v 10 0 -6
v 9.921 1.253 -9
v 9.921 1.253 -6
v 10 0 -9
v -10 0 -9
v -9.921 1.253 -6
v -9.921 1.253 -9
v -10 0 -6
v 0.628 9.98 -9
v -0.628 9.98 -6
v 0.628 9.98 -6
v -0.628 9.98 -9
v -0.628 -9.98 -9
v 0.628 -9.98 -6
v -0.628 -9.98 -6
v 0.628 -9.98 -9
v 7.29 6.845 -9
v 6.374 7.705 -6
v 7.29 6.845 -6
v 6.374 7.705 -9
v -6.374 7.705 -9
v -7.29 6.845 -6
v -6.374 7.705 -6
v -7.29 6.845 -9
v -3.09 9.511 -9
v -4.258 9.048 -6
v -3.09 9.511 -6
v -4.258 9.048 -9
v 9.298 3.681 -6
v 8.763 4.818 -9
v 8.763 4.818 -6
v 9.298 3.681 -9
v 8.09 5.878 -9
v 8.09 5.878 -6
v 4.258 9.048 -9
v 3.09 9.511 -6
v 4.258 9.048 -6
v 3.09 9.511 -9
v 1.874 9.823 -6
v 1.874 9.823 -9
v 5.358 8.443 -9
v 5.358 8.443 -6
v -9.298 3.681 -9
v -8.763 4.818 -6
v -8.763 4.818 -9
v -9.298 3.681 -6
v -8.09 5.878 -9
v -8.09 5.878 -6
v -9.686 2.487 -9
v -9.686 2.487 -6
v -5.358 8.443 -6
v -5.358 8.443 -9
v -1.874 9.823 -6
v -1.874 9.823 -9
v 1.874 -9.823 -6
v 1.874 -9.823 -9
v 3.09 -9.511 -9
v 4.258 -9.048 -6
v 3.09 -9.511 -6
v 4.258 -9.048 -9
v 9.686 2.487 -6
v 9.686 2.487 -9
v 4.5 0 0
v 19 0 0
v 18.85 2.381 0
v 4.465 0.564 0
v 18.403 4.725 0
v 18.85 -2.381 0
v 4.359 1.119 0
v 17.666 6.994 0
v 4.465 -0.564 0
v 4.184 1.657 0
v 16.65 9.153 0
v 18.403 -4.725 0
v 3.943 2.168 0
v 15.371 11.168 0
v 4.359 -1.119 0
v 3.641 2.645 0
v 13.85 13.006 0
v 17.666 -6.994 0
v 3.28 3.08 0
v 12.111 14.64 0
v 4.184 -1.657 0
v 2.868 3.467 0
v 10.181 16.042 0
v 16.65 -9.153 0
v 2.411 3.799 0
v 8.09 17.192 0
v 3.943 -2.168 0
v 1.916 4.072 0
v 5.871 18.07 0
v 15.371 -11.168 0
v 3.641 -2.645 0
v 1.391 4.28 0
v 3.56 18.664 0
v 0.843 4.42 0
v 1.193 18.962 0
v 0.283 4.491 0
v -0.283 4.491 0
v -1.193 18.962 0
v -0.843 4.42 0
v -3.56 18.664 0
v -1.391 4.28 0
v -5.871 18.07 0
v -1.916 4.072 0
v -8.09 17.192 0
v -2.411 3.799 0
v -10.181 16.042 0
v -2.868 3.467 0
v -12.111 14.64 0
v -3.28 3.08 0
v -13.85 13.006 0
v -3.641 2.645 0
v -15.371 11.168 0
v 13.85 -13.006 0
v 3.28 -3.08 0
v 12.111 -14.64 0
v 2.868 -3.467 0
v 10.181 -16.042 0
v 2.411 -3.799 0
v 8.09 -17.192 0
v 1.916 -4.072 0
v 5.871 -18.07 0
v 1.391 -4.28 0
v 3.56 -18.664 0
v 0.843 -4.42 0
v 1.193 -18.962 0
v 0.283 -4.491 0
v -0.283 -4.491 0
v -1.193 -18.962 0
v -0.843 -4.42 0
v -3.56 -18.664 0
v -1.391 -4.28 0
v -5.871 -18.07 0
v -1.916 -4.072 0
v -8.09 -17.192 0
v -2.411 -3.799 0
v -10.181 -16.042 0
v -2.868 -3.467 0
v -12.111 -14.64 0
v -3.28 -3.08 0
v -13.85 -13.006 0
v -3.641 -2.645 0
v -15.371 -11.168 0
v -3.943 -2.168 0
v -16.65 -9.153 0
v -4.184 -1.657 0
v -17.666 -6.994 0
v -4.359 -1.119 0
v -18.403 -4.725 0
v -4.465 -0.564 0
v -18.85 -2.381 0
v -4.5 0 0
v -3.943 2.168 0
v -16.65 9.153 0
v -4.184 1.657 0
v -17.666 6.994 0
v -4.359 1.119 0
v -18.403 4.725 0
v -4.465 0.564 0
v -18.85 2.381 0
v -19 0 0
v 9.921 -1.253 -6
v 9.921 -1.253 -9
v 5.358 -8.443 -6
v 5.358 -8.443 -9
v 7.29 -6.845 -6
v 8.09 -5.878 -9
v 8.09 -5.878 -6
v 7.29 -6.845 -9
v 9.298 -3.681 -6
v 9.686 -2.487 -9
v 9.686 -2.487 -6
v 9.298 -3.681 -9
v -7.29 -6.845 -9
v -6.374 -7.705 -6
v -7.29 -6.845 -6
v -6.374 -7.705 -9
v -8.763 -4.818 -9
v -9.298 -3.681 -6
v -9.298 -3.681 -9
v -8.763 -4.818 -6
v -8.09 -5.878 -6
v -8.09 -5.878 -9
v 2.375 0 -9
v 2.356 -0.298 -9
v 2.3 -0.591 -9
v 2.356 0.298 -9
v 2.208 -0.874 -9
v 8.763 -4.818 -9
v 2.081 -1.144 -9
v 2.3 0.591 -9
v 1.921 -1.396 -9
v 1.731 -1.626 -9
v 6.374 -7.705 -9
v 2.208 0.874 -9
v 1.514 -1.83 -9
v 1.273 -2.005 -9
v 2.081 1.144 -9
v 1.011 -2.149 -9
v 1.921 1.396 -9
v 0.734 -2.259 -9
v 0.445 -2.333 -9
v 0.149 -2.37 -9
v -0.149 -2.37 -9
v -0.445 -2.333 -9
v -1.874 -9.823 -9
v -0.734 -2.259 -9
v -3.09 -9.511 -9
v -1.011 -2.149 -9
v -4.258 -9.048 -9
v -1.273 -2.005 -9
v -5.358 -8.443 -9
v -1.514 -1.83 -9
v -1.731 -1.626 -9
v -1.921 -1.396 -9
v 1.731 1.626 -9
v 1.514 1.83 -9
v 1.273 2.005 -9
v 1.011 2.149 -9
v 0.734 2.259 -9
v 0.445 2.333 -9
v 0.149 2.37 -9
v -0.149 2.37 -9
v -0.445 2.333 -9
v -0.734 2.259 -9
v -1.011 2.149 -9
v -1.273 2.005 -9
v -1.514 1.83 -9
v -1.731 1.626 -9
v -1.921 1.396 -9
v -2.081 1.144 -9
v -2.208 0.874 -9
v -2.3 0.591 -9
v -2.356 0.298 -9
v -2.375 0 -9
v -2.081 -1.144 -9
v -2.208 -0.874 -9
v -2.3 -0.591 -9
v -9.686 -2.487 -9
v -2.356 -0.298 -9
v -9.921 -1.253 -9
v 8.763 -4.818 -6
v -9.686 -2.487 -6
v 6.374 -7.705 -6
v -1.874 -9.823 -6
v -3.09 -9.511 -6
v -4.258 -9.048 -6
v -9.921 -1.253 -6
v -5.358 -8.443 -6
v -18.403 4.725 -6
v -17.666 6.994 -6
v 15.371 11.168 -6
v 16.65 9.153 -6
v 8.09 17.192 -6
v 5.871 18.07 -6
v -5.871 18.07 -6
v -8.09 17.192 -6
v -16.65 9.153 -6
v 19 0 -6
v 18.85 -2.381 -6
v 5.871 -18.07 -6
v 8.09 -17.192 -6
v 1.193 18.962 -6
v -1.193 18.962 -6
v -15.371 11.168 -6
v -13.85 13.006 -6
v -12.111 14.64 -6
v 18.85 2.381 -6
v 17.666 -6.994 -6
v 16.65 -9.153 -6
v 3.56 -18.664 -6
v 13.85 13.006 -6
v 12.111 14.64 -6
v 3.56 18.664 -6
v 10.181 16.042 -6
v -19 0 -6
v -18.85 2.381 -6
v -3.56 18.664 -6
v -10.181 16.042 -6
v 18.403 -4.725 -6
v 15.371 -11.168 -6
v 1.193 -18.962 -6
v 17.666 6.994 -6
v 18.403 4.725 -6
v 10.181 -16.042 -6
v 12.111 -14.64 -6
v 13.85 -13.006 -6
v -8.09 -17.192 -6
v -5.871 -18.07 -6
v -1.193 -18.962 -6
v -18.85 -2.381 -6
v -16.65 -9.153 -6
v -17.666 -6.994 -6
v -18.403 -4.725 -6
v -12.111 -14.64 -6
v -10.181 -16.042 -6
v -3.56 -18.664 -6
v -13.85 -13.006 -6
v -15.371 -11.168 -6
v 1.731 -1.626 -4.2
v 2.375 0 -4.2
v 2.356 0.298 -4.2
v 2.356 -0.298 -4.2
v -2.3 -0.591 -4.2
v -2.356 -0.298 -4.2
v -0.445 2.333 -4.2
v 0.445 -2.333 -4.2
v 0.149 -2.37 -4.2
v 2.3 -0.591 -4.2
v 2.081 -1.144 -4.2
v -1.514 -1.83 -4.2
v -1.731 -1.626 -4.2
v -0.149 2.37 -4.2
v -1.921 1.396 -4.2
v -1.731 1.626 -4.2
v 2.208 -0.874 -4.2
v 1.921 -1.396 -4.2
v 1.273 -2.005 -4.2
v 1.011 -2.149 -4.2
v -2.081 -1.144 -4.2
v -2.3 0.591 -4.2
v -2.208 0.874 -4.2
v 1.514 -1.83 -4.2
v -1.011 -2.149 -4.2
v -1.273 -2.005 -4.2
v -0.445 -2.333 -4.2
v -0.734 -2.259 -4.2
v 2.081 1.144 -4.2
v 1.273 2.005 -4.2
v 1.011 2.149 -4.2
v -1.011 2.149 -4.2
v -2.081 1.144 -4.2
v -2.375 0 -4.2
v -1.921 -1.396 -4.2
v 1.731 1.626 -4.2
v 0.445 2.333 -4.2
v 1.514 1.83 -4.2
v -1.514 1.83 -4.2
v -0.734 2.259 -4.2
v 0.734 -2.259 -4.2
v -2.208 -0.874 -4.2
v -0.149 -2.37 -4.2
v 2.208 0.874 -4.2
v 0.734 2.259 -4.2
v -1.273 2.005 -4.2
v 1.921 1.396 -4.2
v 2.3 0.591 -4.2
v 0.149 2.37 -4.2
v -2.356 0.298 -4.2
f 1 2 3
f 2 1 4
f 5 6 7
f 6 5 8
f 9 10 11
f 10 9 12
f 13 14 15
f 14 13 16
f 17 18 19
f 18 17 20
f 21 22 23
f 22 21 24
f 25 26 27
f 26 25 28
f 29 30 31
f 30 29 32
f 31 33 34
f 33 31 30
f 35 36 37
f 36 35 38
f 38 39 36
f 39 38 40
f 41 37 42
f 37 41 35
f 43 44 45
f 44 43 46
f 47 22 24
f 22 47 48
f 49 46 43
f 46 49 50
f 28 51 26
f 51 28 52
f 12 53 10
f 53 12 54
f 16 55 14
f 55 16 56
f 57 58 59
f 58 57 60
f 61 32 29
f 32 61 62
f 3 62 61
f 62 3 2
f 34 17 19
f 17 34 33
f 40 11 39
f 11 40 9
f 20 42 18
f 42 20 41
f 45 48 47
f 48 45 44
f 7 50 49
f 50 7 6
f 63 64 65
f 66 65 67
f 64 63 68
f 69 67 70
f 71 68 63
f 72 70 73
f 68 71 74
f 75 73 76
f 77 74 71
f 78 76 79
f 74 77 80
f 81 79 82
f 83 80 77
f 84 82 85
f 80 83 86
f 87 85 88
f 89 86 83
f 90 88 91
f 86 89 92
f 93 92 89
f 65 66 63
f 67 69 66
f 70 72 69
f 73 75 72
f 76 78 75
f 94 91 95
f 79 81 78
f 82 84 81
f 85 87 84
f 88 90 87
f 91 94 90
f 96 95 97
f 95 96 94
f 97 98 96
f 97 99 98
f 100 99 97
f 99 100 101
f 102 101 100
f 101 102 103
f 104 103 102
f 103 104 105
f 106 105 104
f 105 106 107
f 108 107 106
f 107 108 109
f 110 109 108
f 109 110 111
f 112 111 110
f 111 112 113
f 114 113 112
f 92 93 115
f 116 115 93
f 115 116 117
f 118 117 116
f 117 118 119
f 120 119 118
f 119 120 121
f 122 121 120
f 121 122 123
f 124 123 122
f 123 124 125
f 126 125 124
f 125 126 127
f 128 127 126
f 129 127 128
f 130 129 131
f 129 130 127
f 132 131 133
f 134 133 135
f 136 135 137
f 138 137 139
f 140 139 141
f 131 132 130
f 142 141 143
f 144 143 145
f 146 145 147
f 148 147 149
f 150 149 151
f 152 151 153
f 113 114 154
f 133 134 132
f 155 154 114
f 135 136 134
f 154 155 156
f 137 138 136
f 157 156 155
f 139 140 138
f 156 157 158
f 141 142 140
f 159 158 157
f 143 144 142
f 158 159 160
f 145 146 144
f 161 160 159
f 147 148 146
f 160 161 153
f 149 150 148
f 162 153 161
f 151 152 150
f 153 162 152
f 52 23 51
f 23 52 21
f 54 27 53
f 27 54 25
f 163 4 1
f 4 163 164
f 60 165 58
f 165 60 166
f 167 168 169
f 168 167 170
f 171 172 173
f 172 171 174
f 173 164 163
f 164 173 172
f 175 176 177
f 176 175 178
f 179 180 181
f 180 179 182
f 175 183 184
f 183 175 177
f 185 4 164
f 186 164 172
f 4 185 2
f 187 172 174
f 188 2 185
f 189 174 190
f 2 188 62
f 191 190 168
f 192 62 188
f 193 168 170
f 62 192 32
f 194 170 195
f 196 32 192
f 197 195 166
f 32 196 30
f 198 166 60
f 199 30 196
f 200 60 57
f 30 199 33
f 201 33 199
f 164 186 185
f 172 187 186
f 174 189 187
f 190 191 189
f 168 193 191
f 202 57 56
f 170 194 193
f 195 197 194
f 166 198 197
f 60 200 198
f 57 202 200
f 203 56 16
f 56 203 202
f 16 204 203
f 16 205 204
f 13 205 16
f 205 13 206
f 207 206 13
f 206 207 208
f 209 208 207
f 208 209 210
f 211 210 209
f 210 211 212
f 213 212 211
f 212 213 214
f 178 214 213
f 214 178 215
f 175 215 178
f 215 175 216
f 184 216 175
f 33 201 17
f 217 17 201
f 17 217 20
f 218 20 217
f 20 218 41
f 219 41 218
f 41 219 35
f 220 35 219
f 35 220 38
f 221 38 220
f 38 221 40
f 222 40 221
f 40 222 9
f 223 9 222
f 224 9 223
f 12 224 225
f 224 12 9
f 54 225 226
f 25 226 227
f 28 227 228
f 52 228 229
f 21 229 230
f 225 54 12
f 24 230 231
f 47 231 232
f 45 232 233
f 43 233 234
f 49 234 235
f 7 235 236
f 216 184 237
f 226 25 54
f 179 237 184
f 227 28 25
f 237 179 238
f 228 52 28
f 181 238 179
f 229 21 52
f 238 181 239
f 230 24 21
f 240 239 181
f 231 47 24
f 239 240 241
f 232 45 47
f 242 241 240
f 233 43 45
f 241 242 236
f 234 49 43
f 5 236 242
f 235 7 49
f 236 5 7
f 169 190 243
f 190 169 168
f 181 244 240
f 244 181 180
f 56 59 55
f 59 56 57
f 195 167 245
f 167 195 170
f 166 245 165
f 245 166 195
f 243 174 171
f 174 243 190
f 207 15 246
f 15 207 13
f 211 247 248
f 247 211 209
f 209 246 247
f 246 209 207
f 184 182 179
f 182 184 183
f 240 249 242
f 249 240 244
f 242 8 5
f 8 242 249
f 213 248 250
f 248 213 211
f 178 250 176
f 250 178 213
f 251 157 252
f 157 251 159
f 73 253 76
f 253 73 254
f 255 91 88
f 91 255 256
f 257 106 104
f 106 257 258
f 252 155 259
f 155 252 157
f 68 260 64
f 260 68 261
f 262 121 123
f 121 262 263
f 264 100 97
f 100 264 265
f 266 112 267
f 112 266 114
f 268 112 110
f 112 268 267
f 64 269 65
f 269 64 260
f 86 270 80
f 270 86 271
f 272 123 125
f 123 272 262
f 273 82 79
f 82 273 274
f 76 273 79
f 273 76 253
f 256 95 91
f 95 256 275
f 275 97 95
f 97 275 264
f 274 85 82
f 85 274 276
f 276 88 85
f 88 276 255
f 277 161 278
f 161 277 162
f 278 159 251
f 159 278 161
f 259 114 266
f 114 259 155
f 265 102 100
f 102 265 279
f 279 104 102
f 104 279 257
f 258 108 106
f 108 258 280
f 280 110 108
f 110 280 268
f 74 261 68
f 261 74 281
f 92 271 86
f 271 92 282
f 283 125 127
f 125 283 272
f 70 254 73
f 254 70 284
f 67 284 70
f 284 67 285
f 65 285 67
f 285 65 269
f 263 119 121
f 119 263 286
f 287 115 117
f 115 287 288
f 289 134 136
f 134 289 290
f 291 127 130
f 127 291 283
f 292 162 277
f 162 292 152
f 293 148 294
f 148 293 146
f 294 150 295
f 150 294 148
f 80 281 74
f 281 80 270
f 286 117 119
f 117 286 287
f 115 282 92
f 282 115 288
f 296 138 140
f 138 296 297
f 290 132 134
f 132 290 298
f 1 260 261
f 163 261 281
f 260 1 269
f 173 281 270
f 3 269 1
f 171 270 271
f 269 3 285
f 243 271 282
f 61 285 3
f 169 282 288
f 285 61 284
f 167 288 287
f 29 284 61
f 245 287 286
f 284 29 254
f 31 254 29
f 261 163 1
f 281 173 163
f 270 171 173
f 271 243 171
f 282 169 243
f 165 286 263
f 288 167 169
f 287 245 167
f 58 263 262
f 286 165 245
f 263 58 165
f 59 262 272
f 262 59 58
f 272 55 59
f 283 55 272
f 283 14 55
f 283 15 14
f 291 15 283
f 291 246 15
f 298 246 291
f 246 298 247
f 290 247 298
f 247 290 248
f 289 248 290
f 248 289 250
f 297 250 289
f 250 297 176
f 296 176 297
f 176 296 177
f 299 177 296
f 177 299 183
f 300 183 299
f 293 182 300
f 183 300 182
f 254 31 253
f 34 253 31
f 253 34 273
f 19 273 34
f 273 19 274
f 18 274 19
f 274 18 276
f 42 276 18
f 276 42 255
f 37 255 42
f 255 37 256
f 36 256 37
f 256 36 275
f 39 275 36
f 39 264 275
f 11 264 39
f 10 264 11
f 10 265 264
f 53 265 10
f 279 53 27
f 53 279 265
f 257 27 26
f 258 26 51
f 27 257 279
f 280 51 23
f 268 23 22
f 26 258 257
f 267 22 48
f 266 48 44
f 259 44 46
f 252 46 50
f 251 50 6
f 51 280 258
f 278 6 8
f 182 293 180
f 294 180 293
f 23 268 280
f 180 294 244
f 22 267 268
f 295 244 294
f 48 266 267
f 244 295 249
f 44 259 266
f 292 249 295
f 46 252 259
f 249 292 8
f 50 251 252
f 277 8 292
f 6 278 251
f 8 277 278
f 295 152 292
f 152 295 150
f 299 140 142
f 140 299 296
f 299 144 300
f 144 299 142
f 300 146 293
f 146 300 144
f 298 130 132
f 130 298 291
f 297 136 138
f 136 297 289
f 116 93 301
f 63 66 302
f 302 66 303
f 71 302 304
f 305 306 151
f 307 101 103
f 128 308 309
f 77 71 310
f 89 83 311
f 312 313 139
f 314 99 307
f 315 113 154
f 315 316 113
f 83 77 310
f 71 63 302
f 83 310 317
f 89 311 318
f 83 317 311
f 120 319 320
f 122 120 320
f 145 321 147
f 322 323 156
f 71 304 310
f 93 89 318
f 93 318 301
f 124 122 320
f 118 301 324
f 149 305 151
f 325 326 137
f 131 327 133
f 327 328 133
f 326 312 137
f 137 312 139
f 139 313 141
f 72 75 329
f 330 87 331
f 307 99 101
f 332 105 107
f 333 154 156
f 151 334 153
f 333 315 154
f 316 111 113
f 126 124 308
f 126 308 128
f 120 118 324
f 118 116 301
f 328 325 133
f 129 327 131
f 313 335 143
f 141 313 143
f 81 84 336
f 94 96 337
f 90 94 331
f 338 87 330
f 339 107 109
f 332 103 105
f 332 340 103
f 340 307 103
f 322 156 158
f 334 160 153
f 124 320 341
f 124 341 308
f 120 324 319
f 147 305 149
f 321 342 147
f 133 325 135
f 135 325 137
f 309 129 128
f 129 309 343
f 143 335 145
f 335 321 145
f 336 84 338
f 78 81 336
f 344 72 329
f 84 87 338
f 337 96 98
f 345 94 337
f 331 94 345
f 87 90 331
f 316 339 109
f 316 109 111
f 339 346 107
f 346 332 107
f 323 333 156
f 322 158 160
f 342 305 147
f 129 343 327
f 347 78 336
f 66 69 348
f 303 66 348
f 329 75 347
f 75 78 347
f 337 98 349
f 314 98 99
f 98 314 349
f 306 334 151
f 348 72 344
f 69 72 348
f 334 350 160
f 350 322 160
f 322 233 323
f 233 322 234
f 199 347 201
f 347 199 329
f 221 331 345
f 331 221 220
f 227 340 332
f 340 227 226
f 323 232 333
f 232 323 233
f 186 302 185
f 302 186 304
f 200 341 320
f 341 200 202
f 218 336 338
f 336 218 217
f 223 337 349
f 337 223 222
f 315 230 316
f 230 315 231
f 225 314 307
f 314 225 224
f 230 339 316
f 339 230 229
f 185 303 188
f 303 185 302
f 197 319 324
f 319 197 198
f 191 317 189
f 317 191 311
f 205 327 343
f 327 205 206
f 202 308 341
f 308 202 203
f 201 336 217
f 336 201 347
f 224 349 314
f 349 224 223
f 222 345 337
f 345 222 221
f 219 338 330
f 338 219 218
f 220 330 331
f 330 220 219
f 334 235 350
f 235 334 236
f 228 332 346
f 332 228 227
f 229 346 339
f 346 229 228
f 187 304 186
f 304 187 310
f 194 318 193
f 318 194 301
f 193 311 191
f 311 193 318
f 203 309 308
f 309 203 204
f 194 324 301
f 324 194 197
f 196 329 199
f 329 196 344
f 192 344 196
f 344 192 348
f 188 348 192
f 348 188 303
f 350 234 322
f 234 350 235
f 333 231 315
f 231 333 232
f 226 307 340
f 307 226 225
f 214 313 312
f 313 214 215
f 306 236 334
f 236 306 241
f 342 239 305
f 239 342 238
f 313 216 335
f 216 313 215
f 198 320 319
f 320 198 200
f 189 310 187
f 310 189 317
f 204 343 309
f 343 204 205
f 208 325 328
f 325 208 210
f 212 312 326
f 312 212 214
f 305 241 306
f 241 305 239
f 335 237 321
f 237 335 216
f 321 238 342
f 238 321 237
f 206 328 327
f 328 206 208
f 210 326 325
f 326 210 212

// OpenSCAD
$fn = 50;


difference() {
	union() {
		translate(v = [0, 0, -9.0000000000]) {
			cylinder(h = 9, r = 10.0000000000);
		}
		translate(v = [0, 0, -6.0000000000]) {
			cylinder(h = 6, r = 19.0000000000);
		}
	}
	union() {
		translate(v = [0, 0, 0]) {
			rotate(a = [0, 0, 0]) {
				difference() {
					union() {
						#translate(v = [0, 0, -9.0000000000]) {
							cylinder(h = 9, r = 2.2500000000);
						}
						#translate(v = [0, 0, -4.2000000000]) {
							cylinder(h = 4.2000000000, r = 10.0000000000, r1 = 2.3750000000, r2 = 4.5000000000);
						}
						#translate(v = [0, 0, -9.0000000000]) {
							cylinder(h = 9, r = 2.3750000000);
						}
						#translate(v = [0, 0, -9.0000000000]) {
							cylinder(h = 9, r = 2.2500000000);
						}
					}
					union();
				}
			}
		}
	}
}
